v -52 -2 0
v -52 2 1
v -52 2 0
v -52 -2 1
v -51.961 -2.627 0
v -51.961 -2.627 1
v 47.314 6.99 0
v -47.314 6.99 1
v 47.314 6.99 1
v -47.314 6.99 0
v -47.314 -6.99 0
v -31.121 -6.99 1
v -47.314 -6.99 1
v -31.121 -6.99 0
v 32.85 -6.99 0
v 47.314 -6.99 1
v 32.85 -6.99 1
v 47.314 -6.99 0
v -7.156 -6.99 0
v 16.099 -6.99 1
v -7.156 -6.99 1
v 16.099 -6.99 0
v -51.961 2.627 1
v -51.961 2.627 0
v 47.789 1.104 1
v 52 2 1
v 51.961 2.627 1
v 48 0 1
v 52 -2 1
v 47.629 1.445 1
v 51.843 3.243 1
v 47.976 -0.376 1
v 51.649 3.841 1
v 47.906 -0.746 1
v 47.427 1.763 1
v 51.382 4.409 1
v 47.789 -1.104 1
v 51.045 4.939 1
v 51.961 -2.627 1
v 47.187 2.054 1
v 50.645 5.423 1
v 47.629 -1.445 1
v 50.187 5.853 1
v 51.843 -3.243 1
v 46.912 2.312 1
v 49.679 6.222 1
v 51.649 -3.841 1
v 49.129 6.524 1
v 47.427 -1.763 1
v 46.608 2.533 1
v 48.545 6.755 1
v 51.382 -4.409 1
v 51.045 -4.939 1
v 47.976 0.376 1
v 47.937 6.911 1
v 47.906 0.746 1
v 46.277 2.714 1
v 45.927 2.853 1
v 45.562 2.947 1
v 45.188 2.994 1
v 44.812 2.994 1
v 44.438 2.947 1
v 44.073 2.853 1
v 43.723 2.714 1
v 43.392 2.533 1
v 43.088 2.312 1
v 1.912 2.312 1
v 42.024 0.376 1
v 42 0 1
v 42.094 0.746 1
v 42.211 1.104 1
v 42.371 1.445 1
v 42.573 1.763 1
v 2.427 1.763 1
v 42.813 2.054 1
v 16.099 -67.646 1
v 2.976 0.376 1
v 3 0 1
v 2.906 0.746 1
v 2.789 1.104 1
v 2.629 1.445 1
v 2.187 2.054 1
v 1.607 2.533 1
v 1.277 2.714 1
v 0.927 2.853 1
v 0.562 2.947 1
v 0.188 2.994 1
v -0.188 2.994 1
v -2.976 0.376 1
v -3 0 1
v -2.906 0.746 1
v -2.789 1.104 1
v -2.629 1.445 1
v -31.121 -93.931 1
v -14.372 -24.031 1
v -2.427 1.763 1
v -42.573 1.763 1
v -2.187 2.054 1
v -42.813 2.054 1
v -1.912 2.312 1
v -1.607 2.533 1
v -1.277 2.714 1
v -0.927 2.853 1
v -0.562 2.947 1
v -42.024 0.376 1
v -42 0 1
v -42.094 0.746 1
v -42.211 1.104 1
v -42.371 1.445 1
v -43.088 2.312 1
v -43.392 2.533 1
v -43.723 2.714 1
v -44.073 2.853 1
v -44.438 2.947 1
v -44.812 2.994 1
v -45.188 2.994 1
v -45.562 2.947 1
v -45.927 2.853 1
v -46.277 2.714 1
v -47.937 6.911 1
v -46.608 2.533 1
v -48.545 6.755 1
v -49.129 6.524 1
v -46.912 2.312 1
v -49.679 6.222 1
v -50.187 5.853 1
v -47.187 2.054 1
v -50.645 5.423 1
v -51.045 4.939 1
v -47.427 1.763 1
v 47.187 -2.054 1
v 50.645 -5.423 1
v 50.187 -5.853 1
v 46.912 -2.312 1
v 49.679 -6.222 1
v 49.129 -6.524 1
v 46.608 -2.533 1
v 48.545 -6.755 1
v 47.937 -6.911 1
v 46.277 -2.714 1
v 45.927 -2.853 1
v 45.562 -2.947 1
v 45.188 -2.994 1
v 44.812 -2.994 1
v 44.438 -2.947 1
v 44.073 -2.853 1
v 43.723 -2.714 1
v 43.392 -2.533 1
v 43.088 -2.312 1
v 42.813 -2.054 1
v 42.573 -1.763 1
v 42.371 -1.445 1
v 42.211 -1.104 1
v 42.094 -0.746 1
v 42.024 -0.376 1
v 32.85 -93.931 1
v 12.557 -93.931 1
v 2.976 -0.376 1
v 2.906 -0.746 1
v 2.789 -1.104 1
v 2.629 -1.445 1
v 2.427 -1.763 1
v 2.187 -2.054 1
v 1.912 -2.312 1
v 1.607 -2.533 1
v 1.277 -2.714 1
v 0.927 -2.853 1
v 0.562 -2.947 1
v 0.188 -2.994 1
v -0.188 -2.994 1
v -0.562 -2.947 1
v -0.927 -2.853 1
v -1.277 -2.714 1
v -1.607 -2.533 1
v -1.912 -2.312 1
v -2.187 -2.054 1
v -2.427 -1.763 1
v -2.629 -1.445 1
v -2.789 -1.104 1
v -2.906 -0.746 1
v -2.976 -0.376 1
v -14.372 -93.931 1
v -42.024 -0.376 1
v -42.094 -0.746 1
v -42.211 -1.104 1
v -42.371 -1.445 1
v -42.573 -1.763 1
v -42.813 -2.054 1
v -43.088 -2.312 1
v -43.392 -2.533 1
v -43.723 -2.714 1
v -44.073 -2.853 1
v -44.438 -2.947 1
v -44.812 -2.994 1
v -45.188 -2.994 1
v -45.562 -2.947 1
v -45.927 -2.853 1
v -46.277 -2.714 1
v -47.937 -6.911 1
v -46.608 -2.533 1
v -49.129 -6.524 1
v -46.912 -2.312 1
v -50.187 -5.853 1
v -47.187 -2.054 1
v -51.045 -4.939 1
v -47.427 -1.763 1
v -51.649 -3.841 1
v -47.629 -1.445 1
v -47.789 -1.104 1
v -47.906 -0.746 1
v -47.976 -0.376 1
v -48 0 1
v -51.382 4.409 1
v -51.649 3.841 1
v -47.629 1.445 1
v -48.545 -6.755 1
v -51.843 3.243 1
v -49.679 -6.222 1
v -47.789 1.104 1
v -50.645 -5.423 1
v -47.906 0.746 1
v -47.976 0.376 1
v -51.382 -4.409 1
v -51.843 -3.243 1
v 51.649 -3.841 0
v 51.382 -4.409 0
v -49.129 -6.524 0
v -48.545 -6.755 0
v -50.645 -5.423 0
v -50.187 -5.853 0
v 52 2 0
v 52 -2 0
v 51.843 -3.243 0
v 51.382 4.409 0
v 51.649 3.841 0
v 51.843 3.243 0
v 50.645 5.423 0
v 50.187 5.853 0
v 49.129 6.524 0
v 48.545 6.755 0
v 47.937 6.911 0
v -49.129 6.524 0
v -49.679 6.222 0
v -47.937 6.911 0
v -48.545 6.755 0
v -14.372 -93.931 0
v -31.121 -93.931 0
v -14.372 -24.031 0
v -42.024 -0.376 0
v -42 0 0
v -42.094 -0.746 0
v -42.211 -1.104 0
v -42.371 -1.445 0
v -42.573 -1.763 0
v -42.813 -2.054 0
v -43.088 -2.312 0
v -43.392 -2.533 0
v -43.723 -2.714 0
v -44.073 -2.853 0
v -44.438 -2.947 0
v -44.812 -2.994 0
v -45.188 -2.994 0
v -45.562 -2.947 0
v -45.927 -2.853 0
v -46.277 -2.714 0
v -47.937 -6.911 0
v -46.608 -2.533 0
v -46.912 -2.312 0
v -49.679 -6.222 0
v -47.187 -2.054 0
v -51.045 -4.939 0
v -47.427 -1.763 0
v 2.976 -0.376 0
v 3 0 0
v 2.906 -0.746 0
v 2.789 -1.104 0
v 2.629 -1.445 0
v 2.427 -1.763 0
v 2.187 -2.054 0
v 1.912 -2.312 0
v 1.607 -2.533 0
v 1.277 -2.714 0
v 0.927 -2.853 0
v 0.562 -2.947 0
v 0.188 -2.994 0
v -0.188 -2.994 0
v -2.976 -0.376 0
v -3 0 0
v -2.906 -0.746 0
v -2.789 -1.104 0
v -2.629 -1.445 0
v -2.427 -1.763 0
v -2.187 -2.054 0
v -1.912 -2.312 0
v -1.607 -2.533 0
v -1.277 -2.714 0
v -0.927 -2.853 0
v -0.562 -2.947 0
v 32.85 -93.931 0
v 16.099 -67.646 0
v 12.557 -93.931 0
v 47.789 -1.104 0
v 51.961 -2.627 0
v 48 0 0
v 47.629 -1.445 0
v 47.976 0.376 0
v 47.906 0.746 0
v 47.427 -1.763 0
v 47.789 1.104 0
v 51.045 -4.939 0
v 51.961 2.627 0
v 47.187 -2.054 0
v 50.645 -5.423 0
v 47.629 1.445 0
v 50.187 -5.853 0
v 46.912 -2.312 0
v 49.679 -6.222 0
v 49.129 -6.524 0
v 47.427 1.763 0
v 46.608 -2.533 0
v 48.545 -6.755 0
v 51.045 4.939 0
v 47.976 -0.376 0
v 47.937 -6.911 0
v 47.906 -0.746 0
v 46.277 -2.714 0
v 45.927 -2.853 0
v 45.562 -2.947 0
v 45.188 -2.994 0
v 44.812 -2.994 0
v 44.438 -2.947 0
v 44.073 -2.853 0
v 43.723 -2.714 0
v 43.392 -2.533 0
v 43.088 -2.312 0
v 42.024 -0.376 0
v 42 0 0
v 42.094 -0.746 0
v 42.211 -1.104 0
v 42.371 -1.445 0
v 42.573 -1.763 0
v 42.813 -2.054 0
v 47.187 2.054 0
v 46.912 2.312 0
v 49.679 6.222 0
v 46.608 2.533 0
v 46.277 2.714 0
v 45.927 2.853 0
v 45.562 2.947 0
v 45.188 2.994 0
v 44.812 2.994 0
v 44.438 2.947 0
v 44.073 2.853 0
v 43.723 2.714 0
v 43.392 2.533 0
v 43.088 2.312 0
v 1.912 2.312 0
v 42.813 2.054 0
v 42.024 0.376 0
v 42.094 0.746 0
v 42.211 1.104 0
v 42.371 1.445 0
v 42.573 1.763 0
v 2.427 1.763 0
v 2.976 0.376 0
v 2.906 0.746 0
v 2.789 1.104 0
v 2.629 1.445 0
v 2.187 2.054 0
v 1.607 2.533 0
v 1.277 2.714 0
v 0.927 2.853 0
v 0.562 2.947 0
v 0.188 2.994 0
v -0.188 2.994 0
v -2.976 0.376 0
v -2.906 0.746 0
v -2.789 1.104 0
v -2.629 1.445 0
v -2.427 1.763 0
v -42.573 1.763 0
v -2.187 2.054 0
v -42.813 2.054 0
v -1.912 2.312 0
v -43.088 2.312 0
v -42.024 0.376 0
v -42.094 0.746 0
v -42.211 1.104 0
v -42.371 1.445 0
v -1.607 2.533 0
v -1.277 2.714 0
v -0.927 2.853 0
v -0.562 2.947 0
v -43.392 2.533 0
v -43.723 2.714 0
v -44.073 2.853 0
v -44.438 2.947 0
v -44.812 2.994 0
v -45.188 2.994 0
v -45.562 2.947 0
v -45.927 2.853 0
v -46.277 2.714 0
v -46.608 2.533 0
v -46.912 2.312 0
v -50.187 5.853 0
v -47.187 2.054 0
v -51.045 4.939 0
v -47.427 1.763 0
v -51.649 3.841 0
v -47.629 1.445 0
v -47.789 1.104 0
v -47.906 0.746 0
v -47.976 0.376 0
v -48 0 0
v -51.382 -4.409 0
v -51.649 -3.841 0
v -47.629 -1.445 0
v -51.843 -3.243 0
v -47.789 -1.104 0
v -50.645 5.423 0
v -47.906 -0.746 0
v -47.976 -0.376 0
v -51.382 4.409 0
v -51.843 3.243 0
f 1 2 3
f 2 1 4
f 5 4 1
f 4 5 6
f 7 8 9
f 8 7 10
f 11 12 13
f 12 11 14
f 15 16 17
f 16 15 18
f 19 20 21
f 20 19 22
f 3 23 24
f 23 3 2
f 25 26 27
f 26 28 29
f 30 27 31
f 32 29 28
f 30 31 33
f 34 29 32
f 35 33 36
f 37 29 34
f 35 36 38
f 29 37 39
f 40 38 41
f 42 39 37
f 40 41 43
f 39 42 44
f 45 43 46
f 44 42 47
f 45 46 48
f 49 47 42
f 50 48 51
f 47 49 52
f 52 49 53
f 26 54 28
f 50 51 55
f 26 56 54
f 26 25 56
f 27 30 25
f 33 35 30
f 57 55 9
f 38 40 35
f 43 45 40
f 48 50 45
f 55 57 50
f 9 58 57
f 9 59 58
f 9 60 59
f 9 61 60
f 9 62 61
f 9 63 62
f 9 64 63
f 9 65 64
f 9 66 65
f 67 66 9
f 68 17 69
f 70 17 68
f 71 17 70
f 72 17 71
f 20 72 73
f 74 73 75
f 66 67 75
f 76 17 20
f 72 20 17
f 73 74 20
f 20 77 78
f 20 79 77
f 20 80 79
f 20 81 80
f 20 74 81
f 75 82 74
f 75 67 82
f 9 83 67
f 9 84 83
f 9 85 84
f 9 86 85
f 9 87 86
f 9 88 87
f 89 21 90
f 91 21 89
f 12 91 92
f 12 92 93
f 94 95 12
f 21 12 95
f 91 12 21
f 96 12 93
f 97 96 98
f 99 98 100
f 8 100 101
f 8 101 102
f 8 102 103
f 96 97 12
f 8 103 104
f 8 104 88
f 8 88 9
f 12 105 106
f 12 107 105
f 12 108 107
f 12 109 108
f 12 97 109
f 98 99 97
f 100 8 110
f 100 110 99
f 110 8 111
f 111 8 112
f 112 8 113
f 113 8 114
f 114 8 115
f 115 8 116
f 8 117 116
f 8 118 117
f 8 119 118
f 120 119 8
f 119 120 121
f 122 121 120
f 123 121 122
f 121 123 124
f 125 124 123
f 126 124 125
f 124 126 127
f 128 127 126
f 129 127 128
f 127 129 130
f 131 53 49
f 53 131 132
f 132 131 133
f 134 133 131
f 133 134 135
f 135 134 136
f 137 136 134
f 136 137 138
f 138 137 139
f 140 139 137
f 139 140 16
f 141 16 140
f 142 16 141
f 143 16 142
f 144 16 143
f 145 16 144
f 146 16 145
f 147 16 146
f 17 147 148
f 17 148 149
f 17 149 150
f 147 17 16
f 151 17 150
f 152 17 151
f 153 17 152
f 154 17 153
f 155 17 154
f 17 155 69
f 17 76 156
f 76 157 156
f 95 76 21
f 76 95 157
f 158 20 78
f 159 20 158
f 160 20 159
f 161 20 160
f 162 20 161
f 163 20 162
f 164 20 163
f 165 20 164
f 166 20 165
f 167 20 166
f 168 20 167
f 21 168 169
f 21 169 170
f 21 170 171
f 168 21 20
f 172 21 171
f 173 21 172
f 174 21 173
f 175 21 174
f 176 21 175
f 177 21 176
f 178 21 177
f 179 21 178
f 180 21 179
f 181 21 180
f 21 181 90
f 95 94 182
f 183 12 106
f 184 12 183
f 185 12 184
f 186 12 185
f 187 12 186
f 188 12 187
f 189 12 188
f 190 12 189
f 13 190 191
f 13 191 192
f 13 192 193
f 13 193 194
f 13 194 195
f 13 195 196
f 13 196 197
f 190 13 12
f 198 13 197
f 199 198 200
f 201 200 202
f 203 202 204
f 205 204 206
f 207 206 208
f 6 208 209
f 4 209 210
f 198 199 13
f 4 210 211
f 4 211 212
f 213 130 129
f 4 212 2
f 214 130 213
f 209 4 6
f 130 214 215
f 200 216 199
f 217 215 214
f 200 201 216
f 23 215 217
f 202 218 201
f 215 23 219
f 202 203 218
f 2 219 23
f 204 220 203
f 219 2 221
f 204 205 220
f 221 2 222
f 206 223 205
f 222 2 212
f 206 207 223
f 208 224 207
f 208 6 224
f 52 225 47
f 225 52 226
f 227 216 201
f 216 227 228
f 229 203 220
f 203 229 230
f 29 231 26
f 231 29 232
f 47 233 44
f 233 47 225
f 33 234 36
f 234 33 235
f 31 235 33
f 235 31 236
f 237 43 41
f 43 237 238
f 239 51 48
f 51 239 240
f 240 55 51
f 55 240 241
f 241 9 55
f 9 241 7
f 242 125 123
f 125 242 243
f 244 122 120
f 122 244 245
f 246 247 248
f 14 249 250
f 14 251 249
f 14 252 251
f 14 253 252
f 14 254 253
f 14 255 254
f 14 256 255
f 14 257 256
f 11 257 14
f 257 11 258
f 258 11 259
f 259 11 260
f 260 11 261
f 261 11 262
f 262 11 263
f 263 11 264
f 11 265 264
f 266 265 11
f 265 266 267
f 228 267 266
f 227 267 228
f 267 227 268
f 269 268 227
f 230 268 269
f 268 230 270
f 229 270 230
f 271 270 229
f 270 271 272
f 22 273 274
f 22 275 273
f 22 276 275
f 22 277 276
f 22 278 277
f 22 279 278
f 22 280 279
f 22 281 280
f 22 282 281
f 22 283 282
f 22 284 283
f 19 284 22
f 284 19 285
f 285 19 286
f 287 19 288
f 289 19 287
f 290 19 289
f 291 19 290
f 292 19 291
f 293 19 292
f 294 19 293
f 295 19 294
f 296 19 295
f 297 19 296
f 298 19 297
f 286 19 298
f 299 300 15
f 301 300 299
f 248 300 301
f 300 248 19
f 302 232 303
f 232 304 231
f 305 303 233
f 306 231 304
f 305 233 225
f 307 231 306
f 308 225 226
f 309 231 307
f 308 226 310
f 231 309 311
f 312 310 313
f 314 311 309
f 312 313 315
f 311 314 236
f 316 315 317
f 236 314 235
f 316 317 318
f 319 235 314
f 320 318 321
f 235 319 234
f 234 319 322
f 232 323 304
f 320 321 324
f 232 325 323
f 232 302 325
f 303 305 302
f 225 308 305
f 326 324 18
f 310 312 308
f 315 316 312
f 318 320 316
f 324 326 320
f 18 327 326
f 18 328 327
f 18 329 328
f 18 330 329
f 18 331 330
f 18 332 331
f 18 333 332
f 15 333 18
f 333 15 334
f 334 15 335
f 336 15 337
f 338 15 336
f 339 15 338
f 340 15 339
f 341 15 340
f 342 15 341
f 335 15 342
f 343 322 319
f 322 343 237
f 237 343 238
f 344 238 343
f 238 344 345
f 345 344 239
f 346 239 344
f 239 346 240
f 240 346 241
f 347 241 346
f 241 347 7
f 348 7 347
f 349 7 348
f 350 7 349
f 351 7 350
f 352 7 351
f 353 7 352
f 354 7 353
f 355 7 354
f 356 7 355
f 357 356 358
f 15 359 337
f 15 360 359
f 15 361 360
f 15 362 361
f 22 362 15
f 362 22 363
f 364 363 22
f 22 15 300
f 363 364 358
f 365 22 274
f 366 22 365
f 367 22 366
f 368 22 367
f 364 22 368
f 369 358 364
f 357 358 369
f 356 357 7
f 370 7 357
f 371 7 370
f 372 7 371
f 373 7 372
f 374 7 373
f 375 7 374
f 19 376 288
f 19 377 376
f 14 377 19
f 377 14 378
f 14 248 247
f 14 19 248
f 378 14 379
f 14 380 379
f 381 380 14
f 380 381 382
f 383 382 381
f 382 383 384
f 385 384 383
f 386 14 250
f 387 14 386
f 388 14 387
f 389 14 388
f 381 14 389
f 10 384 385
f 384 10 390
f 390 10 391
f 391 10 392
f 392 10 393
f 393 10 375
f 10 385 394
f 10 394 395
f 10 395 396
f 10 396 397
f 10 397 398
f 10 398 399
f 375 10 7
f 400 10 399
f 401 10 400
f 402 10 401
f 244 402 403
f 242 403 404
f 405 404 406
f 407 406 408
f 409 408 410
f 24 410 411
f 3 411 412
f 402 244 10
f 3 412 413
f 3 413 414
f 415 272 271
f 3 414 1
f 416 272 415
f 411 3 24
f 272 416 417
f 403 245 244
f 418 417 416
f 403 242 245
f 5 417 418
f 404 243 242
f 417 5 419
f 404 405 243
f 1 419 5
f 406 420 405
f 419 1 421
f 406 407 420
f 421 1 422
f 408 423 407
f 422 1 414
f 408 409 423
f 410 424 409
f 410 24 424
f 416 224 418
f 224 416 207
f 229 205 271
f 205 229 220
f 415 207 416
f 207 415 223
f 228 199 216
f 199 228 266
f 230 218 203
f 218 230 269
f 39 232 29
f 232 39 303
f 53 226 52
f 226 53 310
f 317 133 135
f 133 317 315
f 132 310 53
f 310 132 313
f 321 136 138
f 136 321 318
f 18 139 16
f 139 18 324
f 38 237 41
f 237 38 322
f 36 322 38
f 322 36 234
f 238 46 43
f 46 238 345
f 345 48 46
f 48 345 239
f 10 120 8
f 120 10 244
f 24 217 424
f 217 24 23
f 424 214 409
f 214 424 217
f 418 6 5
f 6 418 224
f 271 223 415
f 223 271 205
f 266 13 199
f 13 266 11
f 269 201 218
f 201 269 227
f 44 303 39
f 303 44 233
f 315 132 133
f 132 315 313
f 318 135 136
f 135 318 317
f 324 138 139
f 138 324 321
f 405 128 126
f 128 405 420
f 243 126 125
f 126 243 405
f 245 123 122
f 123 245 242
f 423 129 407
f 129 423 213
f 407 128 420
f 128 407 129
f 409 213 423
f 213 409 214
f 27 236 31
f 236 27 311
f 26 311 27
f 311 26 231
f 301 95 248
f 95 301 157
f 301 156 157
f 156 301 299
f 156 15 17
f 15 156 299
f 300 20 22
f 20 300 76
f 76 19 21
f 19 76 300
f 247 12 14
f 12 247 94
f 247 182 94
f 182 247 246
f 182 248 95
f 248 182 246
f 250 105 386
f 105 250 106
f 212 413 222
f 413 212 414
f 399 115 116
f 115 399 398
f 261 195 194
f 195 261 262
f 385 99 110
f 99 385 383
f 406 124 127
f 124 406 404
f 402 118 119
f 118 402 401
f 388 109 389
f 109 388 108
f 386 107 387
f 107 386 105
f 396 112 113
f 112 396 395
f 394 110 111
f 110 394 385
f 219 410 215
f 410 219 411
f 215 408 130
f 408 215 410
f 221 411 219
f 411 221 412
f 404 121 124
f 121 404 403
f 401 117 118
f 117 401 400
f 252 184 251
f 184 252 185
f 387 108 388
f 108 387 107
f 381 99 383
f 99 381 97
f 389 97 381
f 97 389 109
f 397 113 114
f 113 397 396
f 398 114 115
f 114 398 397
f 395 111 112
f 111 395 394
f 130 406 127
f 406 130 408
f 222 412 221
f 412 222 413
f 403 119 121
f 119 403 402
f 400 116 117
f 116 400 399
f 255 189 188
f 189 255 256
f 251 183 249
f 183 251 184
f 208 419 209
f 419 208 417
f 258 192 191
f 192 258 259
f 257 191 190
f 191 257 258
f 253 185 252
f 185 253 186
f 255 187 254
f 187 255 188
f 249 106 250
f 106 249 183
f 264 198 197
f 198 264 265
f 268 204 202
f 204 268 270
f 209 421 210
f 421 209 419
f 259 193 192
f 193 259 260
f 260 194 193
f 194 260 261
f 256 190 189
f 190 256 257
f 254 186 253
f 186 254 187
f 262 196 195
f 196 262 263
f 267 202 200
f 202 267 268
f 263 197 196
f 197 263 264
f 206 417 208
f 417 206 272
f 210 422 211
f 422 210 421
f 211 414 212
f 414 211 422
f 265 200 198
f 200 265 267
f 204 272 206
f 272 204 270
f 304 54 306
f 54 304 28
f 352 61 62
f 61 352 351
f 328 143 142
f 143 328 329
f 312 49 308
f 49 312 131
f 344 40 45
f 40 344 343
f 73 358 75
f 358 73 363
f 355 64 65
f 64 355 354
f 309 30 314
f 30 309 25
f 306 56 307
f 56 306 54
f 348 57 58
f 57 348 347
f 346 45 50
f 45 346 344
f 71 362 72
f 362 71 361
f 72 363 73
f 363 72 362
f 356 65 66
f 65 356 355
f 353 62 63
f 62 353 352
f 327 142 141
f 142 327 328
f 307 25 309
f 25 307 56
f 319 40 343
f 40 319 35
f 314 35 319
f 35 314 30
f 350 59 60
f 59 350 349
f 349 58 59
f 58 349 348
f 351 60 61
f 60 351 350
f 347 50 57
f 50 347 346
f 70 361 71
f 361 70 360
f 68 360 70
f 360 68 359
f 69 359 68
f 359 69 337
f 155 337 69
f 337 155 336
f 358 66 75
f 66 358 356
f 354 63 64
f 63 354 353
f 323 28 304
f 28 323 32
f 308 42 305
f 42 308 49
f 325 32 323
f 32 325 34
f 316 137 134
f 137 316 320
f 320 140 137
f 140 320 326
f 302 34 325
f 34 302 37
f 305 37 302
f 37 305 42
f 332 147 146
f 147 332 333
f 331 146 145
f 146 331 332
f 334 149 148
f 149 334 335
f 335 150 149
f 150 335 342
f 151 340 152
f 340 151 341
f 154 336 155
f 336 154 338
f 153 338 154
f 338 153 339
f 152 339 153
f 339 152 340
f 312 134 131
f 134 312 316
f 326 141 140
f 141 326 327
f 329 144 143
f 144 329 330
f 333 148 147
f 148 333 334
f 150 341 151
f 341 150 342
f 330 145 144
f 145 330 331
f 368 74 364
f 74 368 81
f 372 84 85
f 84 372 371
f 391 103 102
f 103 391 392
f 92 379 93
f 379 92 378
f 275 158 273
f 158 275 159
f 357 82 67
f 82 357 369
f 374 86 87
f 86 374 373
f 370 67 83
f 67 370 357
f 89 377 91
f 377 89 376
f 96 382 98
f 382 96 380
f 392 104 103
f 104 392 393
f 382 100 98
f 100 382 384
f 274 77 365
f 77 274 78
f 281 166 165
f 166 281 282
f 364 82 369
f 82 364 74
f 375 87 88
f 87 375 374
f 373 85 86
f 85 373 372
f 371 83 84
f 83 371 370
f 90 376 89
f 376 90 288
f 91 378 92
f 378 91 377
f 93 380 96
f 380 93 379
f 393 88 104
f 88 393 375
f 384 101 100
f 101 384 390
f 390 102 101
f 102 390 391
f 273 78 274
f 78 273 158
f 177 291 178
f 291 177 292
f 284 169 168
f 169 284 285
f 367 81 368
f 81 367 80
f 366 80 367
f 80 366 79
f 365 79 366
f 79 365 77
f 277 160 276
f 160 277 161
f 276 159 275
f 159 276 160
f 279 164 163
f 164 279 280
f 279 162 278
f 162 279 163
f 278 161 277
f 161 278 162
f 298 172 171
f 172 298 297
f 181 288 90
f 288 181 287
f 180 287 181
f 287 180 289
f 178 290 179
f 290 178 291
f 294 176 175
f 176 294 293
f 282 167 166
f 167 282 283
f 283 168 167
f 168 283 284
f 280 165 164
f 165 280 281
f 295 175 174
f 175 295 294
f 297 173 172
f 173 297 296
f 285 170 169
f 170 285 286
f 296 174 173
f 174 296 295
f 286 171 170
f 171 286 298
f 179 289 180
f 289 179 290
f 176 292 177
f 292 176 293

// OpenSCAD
$fn = 50;


difference() {
	union() {
		translate(v = [0, 0, 0]) {
			rotate(a = [0, 0, 0]) {
				hull() {
					translate(v = [-47.0000000000, 2.0000000000, 0]) {
						rotate(a = [0, 0, 0]) {
							translate(v = [0, 0, 0]) {
								rotate(a = [0, 0, 0]) {
									cylinder(h = 1, r = 5);
								}
							}
						}
					}
					translate(v = [47.0000000000, 2.0000000000, 0]) {
						rotate(a = [0, 0, 0]) {
							translate(v = [0, 0, 0]) {
								rotate(a = [0, 0, 0]) {
									cylinder(h = 1, r = 5);
								}
							}
						}
					}
					translate(v = [-47.0000000000, -2.0000000000, 0]) {
						rotate(a = [0, 0, 0]) {
							translate(v = [0, 0, 0]) {
								rotate(a = [0, 0, 0]) {
									cylinder(h = 1, r = 5);
								}
							}
						}
					}
					translate(v = [47.0000000000, -2.0000000000, 0]) {
						rotate(a = [0, 0, 0]) {
							translate(v = [0, 0, 0]) {
								rotate(a = [0, 0, 0]) {
									cylinder(h = 1, r = 5);
								}
							}
						}
					}
				}
			}
		}
		translate(v = [0, 0, 0]) {
			rotate(a = [0, 0, 0]) {
				linear_extrude(height = 1) {
					text(font = "DejaVu Sans Mono:style=Bold", halign = "center", size = 95, text = "N", valign = "top");
				}
			}
		}
	}
	union() {
		translate(v = [-45.0000000000, 0.0000000000, -125.0000000000]) {
			rotate(a = [0, 0, 0]) {
				cylinder(h = 250, r = 3.0000000000);
			}
		}
		translate(v = [45.0000000000, 0.0000000000, -125.0000000000]) {
			rotate(a = [0, 0, 0]) {
				cylinder(h = 250, r = 3.0000000000);
			}
		}
		translate(v = [45.0000000000, 0.0000000000, -125.0000000000]) {
			rotate(a = [0, 0, 0]) {
				cylinder(h = 250, r = 3.0000000000);
			}
		}
		translate(v = [0, 0, -125.0000000000]) {
			rotate(a = [0, 0, 0]) {
				cylinder(h = 250, r = 3.0000000000);
			}
		}
	}
}
